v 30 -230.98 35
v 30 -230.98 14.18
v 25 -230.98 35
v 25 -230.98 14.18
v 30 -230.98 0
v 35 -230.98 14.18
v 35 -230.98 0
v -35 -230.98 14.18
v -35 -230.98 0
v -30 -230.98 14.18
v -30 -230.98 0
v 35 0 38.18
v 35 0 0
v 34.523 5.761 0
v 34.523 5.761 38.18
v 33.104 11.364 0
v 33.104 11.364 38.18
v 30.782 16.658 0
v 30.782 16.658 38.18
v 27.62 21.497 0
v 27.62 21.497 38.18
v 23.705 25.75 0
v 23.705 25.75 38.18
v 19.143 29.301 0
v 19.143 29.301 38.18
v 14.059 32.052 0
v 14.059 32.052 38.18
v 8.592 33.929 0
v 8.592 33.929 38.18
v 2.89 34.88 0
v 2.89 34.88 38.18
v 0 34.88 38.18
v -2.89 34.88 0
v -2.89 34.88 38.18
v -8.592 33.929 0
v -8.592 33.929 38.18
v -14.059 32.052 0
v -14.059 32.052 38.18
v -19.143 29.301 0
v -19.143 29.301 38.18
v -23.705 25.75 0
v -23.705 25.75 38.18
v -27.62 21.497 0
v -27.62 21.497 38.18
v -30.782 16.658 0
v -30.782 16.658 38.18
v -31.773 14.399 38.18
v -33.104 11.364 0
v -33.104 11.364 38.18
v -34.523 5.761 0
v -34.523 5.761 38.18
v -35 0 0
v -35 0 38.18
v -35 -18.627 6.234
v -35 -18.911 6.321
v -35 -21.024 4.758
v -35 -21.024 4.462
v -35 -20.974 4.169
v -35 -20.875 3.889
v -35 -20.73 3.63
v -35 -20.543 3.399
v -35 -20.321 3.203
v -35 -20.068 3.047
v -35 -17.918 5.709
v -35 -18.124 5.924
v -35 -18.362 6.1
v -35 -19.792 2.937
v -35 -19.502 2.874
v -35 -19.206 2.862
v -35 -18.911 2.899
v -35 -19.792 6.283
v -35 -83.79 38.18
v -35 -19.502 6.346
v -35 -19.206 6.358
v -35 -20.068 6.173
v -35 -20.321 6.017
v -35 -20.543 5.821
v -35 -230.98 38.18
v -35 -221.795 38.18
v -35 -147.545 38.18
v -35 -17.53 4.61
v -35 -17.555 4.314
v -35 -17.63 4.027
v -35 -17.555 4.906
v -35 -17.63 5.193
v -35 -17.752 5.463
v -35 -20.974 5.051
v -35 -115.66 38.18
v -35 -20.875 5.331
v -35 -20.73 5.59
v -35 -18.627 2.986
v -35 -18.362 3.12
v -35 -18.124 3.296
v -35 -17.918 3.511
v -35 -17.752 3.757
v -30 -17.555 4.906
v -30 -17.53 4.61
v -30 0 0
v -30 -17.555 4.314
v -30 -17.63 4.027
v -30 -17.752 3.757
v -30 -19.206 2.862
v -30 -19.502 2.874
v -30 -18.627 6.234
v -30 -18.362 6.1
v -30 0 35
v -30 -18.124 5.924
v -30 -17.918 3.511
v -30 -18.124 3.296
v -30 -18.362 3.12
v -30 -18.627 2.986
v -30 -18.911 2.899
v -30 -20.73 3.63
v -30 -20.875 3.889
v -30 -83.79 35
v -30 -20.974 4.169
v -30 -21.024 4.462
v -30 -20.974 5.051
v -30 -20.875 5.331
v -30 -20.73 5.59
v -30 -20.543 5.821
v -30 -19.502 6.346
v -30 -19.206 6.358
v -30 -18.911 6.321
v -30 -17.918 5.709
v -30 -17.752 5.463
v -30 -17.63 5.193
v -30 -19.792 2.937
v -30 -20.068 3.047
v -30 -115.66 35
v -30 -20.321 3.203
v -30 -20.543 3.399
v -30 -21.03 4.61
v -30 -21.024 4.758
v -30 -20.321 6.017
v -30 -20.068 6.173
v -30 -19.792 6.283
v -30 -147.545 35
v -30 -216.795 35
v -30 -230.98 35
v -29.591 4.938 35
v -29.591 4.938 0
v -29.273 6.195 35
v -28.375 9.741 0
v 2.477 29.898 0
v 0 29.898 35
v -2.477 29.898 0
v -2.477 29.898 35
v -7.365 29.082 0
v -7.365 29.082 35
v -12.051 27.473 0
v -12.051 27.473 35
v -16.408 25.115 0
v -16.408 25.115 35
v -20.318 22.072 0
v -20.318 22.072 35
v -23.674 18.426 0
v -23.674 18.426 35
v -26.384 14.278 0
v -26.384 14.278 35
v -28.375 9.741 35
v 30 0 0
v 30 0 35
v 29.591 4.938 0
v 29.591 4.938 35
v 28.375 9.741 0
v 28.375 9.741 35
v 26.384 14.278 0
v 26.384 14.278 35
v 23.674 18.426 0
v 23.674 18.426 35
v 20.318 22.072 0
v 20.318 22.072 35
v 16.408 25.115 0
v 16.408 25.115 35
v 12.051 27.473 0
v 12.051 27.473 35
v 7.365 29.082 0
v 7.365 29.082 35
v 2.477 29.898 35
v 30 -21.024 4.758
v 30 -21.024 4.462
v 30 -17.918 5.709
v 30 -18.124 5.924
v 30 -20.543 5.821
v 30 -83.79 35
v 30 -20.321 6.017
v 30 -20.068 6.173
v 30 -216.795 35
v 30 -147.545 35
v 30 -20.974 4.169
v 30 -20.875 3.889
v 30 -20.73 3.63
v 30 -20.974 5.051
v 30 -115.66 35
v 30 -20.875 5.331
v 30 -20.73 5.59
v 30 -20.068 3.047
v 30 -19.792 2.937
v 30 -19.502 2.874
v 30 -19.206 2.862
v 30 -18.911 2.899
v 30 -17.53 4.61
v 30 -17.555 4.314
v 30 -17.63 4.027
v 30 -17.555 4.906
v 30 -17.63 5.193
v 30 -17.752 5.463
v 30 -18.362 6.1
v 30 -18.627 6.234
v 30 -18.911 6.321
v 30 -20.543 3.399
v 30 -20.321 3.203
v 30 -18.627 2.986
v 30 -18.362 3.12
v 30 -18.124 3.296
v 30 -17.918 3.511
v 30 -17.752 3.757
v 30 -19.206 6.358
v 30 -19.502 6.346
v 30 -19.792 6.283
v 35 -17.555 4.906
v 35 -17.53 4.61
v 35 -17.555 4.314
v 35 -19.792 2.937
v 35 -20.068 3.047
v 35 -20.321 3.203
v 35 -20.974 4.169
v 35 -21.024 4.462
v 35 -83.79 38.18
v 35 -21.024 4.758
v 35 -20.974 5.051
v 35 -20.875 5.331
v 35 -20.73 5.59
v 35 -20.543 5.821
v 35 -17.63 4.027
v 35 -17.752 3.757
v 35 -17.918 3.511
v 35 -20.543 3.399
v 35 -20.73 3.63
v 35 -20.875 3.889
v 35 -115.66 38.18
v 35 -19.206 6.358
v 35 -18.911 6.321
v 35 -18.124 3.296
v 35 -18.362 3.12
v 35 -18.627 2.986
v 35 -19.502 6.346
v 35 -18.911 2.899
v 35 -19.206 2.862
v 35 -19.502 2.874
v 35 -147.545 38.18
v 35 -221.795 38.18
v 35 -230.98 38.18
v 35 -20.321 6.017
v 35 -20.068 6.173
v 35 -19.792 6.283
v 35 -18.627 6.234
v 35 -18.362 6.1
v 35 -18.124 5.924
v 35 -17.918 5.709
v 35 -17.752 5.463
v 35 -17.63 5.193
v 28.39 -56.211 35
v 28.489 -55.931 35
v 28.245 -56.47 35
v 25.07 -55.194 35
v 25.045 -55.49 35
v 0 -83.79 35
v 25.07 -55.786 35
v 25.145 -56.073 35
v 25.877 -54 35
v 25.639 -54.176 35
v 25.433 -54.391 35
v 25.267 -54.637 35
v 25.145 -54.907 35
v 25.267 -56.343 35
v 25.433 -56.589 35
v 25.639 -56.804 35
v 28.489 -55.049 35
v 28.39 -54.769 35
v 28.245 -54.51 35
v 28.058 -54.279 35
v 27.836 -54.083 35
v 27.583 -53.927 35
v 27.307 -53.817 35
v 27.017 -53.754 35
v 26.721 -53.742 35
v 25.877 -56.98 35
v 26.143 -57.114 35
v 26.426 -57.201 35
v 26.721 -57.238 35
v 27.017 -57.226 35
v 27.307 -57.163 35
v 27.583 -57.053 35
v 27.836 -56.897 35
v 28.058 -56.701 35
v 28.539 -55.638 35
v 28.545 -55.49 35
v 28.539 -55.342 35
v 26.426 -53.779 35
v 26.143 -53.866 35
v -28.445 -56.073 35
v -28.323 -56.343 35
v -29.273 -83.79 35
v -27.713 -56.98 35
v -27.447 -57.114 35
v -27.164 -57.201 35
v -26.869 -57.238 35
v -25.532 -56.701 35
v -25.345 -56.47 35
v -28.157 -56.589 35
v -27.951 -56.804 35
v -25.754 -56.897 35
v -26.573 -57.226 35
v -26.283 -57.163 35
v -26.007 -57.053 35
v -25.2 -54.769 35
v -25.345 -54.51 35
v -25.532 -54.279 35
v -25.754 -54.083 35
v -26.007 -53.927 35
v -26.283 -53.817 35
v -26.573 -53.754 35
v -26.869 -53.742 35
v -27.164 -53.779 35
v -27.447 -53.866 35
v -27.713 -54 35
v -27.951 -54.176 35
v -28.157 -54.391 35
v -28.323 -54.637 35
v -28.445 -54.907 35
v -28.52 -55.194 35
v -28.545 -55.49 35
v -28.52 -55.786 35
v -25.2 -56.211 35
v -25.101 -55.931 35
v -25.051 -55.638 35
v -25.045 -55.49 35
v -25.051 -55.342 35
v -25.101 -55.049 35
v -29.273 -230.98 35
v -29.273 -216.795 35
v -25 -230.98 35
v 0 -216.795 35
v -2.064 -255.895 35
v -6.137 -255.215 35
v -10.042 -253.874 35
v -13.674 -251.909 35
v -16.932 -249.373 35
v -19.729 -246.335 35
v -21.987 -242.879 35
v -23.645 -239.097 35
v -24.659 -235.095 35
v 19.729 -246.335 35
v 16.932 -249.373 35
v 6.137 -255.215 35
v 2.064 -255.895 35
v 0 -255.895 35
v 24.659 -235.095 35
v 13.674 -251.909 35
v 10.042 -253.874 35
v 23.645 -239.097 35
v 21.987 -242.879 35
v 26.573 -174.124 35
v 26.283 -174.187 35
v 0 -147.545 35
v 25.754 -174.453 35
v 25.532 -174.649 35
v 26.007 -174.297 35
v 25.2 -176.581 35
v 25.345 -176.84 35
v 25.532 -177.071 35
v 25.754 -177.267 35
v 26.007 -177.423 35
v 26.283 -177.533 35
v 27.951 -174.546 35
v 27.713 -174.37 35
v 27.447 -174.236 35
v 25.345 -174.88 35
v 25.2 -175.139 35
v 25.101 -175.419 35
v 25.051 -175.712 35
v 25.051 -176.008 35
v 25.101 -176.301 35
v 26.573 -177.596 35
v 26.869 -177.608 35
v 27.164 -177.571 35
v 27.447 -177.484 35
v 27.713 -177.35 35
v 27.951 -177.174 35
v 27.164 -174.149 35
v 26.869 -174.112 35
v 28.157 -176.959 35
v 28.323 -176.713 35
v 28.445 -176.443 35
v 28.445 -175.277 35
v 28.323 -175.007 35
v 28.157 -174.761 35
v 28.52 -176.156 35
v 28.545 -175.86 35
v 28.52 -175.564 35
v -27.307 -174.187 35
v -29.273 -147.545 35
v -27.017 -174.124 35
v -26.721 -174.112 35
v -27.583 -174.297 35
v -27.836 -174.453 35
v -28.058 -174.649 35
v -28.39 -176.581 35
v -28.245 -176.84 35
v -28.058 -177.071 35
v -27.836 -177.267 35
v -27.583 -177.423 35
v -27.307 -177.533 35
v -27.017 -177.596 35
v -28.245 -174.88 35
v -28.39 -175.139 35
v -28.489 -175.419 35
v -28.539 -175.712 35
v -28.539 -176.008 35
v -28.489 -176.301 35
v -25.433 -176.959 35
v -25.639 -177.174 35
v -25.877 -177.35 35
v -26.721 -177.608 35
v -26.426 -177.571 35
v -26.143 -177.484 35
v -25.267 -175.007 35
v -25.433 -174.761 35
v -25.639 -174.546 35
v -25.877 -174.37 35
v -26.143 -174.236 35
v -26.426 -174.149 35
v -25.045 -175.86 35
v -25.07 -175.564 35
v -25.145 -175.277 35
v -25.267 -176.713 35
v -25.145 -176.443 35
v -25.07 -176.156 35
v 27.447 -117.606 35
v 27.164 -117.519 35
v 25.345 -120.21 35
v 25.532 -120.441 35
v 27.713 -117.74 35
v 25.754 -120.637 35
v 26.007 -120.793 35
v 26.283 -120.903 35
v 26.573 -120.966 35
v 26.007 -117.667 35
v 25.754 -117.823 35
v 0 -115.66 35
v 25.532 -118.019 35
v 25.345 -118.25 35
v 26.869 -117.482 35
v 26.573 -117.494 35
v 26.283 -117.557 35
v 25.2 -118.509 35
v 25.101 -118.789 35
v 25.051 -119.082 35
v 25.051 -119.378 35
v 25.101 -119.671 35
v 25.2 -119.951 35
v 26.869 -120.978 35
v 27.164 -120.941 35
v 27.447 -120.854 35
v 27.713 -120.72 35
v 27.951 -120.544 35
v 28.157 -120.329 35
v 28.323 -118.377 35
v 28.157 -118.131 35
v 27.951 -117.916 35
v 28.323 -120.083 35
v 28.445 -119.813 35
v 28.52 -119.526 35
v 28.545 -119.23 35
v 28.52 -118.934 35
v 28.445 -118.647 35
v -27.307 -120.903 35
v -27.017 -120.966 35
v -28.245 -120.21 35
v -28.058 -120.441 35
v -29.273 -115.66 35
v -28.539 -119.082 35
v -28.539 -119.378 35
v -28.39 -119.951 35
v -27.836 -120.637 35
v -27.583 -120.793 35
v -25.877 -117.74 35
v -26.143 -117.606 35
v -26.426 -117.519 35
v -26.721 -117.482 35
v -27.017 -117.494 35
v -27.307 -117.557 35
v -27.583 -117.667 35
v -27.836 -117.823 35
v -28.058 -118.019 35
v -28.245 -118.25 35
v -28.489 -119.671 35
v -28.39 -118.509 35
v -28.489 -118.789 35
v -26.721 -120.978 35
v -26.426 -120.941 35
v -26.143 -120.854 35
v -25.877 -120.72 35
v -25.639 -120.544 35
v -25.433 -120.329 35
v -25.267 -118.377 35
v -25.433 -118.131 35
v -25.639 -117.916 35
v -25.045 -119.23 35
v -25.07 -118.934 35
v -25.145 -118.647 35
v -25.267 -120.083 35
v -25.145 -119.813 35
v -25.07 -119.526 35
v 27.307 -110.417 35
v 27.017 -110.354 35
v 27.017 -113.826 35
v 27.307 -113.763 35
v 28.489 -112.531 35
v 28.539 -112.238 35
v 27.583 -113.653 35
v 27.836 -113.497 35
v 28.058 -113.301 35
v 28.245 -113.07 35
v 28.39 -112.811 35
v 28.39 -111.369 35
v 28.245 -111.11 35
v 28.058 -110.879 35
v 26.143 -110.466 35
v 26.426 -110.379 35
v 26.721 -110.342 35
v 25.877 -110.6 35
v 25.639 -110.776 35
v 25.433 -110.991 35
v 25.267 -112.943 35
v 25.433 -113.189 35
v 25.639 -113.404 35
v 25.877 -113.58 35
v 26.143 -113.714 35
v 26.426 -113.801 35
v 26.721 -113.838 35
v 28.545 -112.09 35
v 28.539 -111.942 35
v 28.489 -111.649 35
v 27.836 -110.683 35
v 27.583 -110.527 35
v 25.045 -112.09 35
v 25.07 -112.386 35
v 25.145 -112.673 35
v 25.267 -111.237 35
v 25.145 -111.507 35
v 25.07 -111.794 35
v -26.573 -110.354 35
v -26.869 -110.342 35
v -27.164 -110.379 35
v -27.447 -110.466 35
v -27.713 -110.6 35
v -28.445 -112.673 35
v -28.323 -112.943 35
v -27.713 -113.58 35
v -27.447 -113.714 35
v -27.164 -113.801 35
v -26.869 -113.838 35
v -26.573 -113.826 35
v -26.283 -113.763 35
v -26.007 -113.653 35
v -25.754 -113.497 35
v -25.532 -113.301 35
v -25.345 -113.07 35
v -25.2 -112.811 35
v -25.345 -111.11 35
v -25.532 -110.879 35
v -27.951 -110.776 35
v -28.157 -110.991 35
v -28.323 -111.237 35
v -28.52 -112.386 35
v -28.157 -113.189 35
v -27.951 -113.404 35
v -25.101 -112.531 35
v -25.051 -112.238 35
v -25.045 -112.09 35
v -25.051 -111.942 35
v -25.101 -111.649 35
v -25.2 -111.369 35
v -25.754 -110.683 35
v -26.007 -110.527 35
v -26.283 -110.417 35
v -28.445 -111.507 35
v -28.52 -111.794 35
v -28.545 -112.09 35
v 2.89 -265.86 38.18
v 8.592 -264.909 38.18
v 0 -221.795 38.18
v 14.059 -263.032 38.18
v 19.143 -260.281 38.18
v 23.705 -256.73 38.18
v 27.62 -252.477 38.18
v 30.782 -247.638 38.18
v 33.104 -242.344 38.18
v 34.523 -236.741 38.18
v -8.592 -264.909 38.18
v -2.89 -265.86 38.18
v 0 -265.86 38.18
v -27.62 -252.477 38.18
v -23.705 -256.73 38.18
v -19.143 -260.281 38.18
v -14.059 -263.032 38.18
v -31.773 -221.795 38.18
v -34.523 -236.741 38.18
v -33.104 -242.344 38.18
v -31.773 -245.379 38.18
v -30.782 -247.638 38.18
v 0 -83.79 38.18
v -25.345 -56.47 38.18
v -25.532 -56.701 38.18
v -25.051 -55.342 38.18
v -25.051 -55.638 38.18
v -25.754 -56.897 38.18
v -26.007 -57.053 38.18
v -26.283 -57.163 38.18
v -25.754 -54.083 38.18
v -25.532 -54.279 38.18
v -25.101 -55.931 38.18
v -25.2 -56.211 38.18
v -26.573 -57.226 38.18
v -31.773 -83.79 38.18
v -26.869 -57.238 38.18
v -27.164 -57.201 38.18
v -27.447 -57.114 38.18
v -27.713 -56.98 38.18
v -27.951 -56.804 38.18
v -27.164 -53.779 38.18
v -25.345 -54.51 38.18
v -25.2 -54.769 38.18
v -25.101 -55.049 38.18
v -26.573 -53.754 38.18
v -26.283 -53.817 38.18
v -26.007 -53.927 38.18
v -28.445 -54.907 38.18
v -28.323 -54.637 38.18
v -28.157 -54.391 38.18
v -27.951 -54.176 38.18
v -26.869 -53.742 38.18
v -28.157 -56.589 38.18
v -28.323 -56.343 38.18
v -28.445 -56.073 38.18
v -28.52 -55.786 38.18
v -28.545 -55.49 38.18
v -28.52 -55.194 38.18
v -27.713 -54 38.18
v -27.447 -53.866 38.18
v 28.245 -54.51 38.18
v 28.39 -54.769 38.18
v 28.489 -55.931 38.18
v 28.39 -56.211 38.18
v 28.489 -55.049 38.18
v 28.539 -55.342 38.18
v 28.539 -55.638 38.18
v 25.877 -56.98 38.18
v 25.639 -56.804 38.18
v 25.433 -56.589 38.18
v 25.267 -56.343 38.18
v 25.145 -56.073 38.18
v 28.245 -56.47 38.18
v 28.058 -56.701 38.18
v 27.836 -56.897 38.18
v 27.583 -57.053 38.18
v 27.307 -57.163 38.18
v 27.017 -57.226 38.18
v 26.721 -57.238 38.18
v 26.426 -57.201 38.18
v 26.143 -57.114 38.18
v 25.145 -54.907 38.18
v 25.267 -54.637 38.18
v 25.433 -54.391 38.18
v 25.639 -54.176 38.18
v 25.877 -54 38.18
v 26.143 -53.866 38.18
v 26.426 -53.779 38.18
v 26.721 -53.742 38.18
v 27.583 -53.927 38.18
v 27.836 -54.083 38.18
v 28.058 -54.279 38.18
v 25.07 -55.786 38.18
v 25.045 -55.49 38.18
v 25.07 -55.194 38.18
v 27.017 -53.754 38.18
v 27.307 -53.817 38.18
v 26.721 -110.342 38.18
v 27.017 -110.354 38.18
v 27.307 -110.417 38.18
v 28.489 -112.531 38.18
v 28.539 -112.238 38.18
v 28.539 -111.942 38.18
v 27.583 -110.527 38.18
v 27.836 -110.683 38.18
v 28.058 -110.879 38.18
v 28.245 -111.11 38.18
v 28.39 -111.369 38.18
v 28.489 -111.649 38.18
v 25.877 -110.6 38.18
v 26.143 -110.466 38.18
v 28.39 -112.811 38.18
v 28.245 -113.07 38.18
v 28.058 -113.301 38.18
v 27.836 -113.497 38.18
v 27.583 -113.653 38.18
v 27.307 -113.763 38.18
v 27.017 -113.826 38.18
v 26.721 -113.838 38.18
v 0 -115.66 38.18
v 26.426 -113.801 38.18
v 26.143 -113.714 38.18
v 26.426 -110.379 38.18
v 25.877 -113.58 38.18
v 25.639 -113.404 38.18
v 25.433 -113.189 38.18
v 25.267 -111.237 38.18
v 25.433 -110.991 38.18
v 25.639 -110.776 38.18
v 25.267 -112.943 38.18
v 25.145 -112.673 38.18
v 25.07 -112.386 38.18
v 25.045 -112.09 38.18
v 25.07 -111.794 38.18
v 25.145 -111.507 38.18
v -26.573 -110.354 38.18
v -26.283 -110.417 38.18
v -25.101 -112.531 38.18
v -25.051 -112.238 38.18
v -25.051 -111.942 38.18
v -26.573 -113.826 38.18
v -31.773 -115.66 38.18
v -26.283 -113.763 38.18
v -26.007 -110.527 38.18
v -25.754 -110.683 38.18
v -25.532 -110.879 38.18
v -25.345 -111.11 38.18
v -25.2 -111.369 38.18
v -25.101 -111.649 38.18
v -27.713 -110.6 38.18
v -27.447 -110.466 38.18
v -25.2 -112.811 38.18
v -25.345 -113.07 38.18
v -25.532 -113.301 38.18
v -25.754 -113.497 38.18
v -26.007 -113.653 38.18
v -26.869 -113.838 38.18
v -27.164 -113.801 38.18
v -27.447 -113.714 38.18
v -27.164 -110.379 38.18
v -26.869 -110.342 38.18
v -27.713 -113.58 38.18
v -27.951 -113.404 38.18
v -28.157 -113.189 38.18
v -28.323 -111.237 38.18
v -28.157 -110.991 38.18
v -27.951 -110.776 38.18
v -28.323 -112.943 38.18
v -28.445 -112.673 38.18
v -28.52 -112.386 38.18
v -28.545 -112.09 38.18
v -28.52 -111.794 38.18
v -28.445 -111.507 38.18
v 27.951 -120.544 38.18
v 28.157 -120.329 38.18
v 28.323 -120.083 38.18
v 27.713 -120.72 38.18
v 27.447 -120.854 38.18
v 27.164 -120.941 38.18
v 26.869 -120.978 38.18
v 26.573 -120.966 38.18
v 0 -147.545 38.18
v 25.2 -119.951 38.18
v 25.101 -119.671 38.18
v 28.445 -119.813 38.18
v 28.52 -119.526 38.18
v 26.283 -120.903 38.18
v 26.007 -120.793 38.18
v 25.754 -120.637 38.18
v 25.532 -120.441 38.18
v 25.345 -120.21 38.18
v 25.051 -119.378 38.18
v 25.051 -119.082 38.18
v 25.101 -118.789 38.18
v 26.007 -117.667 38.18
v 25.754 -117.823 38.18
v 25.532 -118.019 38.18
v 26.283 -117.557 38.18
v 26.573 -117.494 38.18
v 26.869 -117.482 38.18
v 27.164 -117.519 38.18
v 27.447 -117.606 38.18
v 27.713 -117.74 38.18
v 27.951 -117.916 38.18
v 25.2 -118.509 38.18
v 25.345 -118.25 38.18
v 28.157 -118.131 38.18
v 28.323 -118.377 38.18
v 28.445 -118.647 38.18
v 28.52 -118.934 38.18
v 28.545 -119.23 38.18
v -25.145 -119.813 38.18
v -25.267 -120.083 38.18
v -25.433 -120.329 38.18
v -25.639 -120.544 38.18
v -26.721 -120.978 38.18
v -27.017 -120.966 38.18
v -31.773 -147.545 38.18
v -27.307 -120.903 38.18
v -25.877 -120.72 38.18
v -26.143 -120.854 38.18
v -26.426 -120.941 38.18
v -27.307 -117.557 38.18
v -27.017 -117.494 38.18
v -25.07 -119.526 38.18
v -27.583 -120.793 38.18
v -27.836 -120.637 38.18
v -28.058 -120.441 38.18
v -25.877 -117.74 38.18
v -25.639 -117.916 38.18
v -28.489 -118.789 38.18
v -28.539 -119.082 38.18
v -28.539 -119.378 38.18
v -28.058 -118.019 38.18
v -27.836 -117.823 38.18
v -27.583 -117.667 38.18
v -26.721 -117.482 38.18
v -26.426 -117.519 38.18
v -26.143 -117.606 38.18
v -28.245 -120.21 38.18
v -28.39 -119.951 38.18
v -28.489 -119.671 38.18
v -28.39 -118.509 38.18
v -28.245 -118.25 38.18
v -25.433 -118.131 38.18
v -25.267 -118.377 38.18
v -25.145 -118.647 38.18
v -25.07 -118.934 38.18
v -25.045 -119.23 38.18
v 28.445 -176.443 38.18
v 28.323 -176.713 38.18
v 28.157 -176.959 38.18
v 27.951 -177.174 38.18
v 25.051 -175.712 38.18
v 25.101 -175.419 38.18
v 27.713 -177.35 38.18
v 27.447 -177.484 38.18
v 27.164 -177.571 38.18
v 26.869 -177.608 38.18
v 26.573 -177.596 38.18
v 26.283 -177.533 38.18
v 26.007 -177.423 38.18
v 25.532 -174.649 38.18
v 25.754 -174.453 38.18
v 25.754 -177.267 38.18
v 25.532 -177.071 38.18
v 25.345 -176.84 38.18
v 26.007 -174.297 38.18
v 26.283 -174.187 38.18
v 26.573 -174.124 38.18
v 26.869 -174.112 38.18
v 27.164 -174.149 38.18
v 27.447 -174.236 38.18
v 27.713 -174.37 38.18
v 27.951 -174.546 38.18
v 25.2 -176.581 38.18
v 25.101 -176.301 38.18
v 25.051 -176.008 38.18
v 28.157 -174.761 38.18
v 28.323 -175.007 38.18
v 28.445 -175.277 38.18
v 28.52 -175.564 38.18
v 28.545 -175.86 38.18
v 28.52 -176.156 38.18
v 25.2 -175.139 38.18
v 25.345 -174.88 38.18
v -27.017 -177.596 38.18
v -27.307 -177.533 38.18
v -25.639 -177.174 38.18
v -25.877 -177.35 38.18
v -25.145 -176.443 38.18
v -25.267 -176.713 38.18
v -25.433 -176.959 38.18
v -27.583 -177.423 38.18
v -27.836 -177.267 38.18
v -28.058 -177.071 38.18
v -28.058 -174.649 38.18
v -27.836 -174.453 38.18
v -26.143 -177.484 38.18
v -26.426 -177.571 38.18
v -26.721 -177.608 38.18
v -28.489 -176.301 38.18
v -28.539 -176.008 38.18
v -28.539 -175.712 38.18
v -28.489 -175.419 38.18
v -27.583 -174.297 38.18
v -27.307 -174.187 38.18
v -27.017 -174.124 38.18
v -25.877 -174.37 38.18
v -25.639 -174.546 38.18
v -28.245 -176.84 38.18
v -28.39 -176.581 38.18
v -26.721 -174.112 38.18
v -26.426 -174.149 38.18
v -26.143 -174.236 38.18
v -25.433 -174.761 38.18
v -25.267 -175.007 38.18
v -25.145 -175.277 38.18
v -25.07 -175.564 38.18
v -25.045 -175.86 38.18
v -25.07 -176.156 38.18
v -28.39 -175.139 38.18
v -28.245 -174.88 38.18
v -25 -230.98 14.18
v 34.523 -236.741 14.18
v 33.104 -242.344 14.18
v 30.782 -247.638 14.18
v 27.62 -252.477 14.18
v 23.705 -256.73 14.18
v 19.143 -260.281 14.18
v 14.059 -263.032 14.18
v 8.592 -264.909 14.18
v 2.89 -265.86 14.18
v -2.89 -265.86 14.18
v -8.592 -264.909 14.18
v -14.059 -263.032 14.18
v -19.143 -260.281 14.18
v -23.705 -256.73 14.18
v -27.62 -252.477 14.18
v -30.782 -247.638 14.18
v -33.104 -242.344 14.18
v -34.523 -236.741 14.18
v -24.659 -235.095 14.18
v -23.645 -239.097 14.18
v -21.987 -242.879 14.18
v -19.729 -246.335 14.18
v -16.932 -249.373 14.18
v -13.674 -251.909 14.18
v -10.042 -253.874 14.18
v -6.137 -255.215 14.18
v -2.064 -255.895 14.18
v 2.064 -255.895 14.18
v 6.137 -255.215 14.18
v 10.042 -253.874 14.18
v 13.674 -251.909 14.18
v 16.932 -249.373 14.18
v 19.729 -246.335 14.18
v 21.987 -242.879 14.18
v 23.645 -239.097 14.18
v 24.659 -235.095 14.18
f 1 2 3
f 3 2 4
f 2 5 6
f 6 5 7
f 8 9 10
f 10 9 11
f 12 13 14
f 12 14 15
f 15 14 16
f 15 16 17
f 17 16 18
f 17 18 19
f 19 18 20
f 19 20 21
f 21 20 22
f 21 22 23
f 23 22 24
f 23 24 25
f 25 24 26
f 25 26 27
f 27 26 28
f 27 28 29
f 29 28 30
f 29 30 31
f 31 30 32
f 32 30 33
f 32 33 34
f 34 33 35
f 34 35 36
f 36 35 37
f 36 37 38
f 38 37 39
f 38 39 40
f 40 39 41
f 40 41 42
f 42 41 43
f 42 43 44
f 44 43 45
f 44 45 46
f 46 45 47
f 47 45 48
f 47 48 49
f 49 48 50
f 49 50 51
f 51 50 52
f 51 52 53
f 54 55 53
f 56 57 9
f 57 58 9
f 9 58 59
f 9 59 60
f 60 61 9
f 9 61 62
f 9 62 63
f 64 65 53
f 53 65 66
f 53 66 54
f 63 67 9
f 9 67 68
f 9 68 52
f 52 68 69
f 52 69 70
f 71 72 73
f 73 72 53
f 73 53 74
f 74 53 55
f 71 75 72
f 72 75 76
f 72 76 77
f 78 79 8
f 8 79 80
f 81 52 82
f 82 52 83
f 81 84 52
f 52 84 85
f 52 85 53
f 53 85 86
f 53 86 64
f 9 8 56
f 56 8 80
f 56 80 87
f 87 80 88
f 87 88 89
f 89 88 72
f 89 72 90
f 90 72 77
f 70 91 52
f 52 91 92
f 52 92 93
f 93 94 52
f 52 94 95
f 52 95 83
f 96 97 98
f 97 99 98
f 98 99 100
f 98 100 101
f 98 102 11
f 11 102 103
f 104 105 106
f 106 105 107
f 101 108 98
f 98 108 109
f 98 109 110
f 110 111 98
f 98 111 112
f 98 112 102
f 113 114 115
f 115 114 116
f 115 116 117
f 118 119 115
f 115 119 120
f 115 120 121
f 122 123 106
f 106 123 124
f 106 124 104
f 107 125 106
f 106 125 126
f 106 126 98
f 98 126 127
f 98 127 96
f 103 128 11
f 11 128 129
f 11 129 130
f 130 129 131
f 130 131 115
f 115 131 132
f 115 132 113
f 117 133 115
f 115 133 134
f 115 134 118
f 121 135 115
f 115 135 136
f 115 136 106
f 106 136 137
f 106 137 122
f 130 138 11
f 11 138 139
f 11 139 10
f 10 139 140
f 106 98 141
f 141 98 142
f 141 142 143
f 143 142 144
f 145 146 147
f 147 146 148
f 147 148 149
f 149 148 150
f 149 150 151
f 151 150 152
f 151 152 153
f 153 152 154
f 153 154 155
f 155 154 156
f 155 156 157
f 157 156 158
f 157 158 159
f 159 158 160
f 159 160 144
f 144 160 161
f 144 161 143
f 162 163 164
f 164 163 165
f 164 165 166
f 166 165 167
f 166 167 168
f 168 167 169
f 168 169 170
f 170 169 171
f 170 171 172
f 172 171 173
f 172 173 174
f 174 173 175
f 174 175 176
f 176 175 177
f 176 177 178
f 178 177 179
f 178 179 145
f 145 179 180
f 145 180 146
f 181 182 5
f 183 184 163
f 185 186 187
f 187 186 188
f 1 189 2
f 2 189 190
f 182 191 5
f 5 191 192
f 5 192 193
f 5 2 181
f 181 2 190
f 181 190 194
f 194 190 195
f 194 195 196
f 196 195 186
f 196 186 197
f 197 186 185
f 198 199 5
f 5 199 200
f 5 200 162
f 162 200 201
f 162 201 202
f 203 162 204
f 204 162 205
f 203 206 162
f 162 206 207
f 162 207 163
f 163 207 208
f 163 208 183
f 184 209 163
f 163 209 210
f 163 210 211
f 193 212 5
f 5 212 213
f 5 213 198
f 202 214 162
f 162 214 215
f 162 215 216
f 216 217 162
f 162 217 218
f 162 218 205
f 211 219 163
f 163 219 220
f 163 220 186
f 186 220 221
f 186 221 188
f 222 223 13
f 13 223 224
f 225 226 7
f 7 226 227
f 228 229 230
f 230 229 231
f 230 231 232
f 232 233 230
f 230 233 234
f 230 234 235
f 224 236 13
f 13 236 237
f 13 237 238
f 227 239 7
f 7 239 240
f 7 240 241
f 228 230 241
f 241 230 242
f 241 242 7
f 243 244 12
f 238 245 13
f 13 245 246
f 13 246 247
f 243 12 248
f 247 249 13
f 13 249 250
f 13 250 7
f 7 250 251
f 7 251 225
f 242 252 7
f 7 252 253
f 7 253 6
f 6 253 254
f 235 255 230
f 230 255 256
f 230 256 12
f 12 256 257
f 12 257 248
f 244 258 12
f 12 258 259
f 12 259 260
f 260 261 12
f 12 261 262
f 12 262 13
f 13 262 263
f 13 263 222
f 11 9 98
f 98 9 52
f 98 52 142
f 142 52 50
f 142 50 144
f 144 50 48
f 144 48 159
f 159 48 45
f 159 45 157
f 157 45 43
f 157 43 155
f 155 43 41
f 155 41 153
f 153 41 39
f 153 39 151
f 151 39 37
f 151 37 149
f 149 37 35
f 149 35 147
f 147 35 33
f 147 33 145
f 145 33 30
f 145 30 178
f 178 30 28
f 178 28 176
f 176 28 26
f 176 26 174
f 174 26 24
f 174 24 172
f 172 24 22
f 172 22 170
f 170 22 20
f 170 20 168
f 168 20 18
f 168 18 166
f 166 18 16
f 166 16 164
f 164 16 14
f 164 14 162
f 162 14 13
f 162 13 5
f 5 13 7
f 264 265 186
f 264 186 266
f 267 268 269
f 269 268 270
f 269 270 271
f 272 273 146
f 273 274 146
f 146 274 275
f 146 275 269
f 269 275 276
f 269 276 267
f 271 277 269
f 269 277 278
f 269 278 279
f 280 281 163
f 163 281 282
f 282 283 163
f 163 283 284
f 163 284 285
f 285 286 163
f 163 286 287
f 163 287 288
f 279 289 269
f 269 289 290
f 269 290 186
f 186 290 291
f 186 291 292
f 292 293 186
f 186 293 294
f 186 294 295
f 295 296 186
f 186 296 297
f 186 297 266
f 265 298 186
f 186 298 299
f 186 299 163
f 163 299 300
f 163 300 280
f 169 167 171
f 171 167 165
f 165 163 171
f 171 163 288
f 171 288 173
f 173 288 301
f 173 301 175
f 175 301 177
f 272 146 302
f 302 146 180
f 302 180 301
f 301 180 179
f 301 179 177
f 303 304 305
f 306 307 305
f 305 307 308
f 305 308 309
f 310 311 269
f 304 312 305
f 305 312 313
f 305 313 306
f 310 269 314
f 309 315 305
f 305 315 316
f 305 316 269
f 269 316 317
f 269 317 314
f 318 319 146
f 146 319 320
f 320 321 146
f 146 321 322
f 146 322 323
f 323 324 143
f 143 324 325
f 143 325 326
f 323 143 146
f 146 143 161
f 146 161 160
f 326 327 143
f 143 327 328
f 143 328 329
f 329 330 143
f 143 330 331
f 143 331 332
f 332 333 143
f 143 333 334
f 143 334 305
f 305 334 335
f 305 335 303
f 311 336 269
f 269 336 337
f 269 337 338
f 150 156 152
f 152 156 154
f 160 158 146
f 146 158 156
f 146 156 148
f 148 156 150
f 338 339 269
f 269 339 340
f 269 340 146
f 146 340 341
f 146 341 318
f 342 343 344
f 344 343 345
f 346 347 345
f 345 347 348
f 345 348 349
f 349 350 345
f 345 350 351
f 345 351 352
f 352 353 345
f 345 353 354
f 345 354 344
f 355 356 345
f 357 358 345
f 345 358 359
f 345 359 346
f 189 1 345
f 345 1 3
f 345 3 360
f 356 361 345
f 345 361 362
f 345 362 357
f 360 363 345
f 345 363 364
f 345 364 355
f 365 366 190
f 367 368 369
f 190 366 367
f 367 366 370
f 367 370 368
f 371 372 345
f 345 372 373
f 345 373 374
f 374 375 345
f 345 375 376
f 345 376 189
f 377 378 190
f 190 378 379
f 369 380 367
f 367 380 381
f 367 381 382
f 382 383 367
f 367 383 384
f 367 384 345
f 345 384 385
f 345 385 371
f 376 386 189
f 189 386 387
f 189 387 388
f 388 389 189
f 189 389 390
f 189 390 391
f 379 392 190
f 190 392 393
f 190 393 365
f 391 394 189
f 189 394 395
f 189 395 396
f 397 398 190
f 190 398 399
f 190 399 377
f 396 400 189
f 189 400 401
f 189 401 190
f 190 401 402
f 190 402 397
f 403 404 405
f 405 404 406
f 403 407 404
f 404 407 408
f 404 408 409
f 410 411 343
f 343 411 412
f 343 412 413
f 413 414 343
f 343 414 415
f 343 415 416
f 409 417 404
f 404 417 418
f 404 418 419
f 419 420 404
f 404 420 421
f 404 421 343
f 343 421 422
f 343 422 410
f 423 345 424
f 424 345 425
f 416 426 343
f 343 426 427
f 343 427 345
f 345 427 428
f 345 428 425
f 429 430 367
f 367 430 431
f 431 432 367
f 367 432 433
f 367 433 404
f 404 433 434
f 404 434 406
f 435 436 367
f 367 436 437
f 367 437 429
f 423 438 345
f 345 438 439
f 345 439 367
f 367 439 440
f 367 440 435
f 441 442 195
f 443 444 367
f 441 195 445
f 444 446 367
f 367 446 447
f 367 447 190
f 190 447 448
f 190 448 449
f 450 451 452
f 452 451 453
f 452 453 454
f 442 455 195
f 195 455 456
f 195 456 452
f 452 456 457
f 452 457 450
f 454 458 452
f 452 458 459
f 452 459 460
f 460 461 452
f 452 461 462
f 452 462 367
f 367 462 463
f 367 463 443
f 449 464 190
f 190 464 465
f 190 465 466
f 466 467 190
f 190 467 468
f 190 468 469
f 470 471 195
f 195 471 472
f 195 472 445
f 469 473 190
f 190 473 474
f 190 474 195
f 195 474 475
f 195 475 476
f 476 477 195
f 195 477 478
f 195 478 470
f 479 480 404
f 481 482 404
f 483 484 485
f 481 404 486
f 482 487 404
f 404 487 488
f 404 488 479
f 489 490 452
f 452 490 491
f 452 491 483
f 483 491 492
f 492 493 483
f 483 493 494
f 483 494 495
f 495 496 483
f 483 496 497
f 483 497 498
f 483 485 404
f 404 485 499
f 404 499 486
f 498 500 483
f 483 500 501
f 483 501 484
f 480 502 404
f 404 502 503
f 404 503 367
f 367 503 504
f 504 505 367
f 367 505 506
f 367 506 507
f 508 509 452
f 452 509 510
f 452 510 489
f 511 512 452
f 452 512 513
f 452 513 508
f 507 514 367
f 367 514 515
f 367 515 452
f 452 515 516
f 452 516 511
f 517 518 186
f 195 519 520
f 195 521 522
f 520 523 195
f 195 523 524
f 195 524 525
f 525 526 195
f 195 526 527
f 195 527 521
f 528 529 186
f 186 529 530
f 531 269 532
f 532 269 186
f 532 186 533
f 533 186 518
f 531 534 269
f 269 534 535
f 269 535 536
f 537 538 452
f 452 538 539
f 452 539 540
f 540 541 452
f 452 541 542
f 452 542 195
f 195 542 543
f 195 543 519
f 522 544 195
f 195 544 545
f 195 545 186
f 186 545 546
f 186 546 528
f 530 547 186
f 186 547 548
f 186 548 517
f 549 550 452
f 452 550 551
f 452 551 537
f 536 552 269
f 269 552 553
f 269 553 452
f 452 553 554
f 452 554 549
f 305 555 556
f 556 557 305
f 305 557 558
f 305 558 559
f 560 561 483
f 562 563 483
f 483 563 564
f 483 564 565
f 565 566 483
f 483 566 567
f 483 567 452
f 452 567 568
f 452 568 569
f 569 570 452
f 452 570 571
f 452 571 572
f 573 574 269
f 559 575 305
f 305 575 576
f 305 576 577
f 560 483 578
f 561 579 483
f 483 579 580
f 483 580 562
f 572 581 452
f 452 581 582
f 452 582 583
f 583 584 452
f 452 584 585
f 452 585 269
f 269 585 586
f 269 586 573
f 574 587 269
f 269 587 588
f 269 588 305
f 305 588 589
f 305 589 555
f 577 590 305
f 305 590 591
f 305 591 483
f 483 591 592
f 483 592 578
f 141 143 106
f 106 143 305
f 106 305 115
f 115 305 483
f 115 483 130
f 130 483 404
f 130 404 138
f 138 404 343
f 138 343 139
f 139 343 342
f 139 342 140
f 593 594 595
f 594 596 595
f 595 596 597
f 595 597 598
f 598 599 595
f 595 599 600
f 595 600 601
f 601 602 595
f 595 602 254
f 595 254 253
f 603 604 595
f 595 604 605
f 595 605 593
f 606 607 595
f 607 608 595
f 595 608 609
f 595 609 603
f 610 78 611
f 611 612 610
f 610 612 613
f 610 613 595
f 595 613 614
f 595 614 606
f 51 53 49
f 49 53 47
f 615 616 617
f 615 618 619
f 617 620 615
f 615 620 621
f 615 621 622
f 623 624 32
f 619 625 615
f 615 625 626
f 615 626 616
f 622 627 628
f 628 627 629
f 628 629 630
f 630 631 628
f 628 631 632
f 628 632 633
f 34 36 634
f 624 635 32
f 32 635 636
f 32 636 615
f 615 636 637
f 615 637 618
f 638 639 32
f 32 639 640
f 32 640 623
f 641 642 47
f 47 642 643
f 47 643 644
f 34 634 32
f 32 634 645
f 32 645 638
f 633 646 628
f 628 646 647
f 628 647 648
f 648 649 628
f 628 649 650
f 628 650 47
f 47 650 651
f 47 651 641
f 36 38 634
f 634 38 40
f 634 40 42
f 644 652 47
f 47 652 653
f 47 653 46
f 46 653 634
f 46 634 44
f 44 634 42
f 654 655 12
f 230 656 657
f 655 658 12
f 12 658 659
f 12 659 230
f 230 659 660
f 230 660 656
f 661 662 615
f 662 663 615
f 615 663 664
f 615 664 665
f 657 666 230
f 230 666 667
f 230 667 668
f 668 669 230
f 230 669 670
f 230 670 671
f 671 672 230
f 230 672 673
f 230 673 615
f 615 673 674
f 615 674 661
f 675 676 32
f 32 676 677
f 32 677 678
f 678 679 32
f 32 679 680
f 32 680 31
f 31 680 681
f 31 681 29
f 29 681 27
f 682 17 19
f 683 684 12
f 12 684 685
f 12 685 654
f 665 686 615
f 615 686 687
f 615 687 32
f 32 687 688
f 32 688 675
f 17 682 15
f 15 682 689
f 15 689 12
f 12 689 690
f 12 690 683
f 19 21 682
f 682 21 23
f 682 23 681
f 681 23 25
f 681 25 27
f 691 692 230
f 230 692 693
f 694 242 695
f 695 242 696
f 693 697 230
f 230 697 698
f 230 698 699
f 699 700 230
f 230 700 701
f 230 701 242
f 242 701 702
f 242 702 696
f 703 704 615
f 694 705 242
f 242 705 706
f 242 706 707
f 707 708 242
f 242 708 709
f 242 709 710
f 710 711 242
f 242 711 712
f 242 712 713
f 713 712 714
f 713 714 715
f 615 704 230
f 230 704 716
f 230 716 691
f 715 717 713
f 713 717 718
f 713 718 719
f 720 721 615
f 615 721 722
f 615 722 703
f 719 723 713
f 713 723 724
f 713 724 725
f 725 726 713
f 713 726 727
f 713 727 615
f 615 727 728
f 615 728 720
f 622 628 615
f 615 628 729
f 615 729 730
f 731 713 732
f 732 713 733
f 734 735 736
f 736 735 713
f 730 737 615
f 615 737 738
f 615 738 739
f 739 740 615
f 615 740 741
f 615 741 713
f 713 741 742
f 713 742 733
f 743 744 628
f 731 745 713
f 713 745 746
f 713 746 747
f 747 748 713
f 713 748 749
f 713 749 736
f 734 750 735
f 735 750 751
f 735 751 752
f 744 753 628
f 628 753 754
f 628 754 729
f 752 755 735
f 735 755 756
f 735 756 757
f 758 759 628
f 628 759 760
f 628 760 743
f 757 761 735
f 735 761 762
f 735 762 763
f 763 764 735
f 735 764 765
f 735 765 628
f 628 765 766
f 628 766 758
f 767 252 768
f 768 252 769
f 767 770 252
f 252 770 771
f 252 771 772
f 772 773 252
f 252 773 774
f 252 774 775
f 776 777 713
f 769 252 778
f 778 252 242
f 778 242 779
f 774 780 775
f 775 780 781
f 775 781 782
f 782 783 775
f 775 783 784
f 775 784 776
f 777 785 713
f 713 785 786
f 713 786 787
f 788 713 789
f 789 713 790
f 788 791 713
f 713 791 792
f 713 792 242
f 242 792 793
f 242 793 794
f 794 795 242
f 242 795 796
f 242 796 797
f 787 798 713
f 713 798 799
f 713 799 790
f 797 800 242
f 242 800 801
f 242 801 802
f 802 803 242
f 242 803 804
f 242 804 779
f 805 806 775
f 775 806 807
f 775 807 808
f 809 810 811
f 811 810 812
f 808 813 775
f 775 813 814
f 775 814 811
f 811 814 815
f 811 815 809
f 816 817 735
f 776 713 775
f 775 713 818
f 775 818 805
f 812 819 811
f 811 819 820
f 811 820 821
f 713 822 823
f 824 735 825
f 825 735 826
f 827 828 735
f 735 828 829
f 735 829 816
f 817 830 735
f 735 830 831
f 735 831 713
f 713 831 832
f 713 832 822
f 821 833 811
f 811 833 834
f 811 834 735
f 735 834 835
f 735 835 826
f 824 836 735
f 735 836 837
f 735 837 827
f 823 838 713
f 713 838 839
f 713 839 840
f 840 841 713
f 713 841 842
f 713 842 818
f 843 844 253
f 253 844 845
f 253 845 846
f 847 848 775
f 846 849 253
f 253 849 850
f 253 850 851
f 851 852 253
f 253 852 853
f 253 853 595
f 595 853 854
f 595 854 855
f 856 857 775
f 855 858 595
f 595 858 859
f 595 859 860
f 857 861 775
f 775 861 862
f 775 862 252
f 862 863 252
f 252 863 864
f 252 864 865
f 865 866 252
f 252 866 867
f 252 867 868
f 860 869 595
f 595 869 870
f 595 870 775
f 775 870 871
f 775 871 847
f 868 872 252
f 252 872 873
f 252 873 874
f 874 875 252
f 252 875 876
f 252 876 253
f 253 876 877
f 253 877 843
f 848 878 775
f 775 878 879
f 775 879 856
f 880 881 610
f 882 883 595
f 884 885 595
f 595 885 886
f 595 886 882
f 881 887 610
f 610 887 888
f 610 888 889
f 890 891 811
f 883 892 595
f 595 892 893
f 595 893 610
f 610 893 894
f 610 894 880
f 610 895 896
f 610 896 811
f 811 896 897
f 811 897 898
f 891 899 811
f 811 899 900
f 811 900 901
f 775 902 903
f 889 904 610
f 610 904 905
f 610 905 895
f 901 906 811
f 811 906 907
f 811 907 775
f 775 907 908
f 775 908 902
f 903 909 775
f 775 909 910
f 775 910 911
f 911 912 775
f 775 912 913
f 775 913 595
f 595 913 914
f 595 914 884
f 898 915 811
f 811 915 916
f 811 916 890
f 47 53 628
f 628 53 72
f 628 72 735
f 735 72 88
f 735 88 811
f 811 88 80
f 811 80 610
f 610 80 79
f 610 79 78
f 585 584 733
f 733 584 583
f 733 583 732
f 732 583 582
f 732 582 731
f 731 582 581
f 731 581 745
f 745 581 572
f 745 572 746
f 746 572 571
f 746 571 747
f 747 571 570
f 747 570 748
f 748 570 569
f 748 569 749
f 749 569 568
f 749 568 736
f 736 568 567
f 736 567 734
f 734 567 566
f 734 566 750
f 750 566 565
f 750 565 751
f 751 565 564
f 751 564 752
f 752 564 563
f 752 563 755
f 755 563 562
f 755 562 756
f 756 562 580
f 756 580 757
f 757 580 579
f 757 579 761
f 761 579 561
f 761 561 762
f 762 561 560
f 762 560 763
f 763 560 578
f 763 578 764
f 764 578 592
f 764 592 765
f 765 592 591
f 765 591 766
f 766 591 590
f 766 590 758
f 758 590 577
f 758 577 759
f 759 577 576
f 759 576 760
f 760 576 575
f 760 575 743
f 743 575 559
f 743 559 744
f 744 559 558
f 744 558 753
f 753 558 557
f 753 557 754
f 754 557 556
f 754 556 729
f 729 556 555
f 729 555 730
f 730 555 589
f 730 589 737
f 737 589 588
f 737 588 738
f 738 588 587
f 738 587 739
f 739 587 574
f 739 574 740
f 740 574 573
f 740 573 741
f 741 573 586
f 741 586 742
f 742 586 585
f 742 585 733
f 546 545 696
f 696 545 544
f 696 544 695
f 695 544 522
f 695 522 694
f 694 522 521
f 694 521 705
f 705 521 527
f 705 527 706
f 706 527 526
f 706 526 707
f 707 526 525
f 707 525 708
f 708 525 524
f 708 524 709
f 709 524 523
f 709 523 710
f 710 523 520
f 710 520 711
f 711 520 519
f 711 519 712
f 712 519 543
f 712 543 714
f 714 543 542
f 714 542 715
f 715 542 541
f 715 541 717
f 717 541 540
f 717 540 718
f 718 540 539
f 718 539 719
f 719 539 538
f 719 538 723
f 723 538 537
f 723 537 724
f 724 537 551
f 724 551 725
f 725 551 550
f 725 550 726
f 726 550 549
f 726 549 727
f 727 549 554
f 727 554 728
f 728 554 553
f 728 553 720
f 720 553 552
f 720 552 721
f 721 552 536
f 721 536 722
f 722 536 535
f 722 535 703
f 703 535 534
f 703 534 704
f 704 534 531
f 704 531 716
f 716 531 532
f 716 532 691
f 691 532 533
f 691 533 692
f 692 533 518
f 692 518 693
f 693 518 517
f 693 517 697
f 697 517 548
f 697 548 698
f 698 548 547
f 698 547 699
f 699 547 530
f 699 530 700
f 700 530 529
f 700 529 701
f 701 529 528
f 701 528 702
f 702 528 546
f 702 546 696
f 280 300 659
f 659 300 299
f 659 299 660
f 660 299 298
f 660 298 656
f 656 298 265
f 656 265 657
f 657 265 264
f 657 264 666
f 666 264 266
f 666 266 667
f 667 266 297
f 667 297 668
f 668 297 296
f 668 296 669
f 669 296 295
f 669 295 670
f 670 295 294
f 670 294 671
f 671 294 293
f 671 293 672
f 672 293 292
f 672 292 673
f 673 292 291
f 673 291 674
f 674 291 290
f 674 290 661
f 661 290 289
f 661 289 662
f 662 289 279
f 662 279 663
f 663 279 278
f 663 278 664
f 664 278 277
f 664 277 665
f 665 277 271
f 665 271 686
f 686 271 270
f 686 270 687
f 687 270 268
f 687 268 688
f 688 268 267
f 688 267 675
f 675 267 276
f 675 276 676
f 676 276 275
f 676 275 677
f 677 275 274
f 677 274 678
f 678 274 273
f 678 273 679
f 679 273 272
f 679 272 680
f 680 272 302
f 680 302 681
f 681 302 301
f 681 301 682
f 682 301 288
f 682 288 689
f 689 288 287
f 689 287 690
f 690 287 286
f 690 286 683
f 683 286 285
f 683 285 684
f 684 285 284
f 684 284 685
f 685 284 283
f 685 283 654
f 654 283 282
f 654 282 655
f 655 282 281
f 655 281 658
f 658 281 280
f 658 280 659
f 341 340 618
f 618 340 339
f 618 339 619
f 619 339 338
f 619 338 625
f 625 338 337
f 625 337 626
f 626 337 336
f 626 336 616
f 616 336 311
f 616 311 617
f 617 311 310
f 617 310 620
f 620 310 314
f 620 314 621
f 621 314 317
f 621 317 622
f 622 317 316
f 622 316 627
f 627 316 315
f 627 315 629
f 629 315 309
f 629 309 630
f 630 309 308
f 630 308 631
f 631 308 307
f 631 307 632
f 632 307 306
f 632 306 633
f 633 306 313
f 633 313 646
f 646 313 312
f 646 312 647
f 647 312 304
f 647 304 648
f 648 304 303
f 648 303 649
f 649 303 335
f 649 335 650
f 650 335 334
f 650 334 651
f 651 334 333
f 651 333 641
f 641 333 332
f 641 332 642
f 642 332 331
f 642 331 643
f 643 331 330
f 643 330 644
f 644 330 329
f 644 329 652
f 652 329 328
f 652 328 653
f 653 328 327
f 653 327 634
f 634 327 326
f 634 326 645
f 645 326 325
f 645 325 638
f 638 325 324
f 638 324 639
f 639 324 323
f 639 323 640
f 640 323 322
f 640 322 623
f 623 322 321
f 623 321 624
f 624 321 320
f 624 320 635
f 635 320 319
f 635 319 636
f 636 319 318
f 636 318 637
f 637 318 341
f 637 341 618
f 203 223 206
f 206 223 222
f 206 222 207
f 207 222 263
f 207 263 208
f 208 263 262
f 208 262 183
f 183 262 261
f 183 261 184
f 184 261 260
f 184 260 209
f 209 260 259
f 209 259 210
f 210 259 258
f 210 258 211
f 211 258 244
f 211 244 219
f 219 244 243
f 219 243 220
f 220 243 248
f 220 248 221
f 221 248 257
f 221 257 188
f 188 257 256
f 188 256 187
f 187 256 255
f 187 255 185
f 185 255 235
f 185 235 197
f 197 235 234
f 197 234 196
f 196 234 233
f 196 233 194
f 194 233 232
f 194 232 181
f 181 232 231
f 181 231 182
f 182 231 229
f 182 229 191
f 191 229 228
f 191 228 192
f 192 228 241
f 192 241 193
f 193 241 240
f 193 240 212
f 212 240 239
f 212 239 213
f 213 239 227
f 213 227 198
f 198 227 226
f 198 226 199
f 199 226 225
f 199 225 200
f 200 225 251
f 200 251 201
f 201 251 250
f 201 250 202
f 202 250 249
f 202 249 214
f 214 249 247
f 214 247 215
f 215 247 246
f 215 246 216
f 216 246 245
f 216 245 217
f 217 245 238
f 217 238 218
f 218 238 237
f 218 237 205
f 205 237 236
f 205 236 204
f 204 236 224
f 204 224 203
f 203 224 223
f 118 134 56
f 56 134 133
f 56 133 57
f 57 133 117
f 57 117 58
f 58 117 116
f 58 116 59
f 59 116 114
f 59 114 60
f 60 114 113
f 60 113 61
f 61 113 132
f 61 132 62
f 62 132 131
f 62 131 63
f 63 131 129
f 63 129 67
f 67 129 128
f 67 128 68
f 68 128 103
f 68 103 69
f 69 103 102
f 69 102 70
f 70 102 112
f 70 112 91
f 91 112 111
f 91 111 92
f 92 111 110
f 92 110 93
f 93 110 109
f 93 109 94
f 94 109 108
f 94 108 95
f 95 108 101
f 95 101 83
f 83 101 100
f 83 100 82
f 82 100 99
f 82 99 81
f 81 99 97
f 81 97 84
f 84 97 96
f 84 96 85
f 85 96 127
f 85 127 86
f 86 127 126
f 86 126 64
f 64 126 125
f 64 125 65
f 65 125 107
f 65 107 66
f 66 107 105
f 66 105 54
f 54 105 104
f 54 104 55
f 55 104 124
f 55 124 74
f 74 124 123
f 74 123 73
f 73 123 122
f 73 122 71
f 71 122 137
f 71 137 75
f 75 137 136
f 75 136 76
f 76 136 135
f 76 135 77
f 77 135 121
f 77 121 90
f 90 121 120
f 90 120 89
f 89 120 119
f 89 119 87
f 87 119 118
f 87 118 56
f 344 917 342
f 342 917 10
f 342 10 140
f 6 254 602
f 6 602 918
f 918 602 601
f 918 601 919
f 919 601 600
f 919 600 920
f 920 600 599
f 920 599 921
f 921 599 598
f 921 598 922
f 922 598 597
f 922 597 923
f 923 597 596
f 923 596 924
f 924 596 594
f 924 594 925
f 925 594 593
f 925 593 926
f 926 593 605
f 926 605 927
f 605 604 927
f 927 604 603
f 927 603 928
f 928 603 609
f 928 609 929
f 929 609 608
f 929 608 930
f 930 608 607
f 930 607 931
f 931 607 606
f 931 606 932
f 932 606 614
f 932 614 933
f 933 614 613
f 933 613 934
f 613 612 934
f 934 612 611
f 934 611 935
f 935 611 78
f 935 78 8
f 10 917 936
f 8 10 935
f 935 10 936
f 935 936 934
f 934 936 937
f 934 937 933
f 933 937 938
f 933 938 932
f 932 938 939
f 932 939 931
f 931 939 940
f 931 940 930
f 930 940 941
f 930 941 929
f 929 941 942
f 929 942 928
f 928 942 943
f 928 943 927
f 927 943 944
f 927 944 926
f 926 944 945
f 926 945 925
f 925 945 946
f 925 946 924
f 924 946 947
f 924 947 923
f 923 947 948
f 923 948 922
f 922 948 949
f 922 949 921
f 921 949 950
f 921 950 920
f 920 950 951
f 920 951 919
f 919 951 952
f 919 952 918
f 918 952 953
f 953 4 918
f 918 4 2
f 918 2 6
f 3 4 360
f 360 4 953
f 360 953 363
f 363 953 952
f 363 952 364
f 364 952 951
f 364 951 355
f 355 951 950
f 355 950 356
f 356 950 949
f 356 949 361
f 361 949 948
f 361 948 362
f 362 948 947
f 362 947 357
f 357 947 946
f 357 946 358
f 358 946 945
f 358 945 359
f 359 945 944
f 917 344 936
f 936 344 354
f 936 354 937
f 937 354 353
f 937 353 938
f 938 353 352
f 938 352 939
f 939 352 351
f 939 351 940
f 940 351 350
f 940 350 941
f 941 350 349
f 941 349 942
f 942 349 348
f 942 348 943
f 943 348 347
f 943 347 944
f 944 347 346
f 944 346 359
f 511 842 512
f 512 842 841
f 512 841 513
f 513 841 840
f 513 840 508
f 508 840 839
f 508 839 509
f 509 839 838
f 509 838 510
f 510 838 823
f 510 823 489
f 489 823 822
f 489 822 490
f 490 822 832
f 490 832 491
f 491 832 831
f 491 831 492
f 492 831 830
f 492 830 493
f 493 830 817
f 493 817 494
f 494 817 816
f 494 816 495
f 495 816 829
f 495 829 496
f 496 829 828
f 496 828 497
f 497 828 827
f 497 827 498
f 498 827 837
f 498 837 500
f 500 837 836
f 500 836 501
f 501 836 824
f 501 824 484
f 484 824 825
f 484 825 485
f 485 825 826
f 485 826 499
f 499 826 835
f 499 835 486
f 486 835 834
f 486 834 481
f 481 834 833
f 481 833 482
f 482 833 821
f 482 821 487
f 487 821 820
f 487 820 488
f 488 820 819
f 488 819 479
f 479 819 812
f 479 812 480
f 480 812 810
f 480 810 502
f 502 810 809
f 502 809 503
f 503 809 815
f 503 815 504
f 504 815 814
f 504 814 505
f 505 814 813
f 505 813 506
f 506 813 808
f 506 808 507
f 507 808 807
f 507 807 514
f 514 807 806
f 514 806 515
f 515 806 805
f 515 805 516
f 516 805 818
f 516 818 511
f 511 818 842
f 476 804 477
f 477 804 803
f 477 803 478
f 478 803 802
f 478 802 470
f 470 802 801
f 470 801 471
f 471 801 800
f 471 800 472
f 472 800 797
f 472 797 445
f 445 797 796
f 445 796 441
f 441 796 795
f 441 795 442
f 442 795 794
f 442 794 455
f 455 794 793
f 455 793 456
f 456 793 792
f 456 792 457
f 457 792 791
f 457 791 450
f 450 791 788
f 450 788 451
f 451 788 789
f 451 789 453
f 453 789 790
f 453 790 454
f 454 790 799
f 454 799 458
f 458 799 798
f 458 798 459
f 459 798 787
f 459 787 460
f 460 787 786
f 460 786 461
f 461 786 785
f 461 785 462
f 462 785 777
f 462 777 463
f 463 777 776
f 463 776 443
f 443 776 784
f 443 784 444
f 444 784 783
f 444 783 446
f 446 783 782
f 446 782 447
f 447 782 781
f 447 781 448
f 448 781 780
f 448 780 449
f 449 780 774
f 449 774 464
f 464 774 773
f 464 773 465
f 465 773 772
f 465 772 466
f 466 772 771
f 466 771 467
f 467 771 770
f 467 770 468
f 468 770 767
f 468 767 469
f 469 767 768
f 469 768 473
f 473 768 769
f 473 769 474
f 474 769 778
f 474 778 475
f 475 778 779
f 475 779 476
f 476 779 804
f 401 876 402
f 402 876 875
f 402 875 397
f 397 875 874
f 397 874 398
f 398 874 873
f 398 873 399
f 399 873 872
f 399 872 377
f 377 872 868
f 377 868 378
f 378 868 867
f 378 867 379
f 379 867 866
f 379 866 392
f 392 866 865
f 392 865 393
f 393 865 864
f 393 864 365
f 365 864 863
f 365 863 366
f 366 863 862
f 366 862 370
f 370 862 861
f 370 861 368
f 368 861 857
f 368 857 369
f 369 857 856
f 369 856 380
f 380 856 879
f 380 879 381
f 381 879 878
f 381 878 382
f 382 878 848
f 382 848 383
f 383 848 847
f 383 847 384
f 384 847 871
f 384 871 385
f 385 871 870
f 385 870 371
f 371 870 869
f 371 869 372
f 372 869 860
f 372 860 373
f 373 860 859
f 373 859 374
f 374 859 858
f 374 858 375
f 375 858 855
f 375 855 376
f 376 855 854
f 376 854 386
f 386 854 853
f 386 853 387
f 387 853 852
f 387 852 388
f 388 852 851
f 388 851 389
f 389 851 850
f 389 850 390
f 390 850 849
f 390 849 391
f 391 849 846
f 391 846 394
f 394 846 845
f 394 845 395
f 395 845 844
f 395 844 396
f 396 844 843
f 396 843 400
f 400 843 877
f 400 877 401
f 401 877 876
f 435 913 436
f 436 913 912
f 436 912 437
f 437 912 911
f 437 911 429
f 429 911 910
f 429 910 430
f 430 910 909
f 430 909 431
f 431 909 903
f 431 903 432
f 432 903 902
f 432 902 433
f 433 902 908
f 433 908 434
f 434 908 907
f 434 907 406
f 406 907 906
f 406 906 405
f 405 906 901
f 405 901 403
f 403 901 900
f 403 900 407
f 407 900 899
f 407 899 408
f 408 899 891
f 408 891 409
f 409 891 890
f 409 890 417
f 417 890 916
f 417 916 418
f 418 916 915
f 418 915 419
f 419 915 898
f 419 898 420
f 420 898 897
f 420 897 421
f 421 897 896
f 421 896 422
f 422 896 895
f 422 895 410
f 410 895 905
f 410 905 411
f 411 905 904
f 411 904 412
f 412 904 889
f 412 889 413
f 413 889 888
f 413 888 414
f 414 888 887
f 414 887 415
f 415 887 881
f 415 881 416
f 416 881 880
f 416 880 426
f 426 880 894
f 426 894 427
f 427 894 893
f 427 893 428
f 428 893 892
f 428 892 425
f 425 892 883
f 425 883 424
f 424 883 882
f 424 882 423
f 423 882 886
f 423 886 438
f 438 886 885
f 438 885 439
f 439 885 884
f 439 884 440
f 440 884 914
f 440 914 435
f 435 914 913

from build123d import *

# Parameters (mm, degrees)
EXTRUDE_1_DEPTH     = 35
EXTRUDE_2_DEPTH     = 3.18
SKETCH_3_R          = 1.75
CUT_EXTRUDE_1_DEPTH = 39.18
SKETCH_4_R          = 1.75
CUT_EXTRUDE_2_DEPTH = 39.18
SKETCH_5_R          = 1.75
CUT_EXTRUDE_3_DEPTH = 71
EXTRUDE_3_DEPTH     = 115.49
EXTRUDE_7_DEPTH     = 24
SKETCH_11_R         = 25
CUT_EXTRUDE_4_DEPTH = 20.82
SKETCH_12_R         = 1.75
CUT_EXTRUDE_5_DEPTH = 39.18
SKETCH_13_R         = 1.75
CUT_EXTRUDE_6_DEPTH = 24


with BuildPart() as part:
    # 草图1 → 凸台-拉伸1 (new body)
    with BuildSketch(Plane.XY):
        with BuildLine():
            Line((-30, 0), (-30, -115.49))
            Line((-30, -115.49), (-35, -115.49))
            Line((-35, -115.49), (-35, 0))
            ThreePointArc((-35, 0), (0, 35), (35, 0))
            Line((35, 0), (35, -115.49))
            Line((35, -115.49), (30, -115.49))
            Line((30, -115.49), (30, 0))
            ThreePointArc((30, 0), (0, 30), (-30, 0))
        make_face()
    extrude(amount=EXTRUDE_1_DEPTH)

    # 草图2 → 凸台-拉伸2 (add)
    with BuildSketch(Plane.XY.offset(35)):
        with BuildLine():
            Line((-30, -115.49), (30, -115.49))
            Line((30, -115.49), (35, -115.49))
            Line((35, -115.49), (35, 0))
            ThreePointArc((35, 0), (0, 35), (-35, 0))
            Line((-35, 0), (-35, -115.49))
            Line((-35, -115.49), (-30, -115.49))
        make_face()
    extrude(amount=EXTRUDE_2_DEPTH)

    # 草图3 → 切除-拉伸1 (cut, through all)
    with BuildSketch(Plane(origin=(0, 0, 0), x_dir=(-1, 0, 0), z_dir=(0, 0, -1))):
        with Locations((-26.795, -112.09)):
            Circle(SKETCH_3_R)
        with Locations((26.795, -112.09)):
            Circle(SKETCH_3_R)
    extrude(amount=-CUT_EXTRUDE_1_DEPTH, mode=Mode.SUBTRACT)

    # 草图4 → 切除-拉伸2 (cut, through all)
    with BuildSketch(Plane(origin=(0, 0, 0), x_dir=(-1, 0, 0), z_dir=(0, 0, -1))):
        with Locations((-26.795, -55.49)):
            Circle(SKETCH_4_R)
        with Locations((26.795, -55.49)):
            Circle(SKETCH_4_R)
    extrude(amount=-CUT_EXTRUDE_2_DEPTH, mode=Mode.SUBTRACT)

    # 草图5 → 切除-拉伸3 (cut, through all)
    with BuildSketch(Plane(origin=(35, 0, 0), x_dir=(0, 0, -1), z_dir=(1, 0, 0))):
        with Locations((-4.61, -19.28)):
            Circle(SKETCH_5_R)
    extrude(amount=-CUT_EXTRUDE_3_DEPTH, mode=Mode.SUBTRACT)

    # 草图6 → 凸台-拉伸3 (add)
    with BuildSketch(Plane.XZ.offset(115.49)):
        Polygon((30, 0), (35, 0), (35, 38.18), (-35, 38.18), (-35, 0), (-30, 0), (-30, 35), (30, 35), align=None)
    extrude(amount=EXTRUDE_3_DEPTH)

    # 草图10 → 凸台-拉伸7 (add)
    with BuildSketch(Plane.XY.offset(38.18)):
        with BuildLine():
            Line((35, -230.98), (-35, -230.98))
            ThreePointArc((-35, -230.98), (0, -265.98), (35, -230.98))
        make_face()
    extrude(amount=-EXTRUDE_7_DEPTH)

    # 草图11 → 切除-拉伸4 (cut)
    with BuildSketch(Plane(origin=(0, 0, 14.18), x_dir=(-1, 0, 0), z_dir=(0, 0, -1))):
        with Locations((0, -230.98)):
            Circle(SKETCH_11_R)
    extrude(amount=-CUT_EXTRUDE_4_DEPTH, mode=Mode.SUBTRACT)

    # 草图12 → 切除-拉伸5 (cut, through all)
    with BuildSketch(Plane.XY.offset(38.18)):
        with Locations((26.795, -119.23)):
            Circle(SKETCH_12_R)
        with Locations((-26.795, -119.23)):
            Circle(SKETCH_12_R)
    extrude(amount=-CUT_EXTRUDE_5_DEPTH, mode=Mode.SUBTRACT)

    # 草图13 → 切除-拉伸6 (cut)
    with BuildSketch(Plane.XY.offset(38.18)):
        with Locations((-26.795, -175.86)):
            Circle(SKETCH_13_R)
        with Locations((26.795, -175.86)):
            Circle(SKETCH_13_R)
    extrude(amount=-CUT_EXTRUDE_6_DEPTH, mode=Mode.SUBTRACT)


solid = part.part
